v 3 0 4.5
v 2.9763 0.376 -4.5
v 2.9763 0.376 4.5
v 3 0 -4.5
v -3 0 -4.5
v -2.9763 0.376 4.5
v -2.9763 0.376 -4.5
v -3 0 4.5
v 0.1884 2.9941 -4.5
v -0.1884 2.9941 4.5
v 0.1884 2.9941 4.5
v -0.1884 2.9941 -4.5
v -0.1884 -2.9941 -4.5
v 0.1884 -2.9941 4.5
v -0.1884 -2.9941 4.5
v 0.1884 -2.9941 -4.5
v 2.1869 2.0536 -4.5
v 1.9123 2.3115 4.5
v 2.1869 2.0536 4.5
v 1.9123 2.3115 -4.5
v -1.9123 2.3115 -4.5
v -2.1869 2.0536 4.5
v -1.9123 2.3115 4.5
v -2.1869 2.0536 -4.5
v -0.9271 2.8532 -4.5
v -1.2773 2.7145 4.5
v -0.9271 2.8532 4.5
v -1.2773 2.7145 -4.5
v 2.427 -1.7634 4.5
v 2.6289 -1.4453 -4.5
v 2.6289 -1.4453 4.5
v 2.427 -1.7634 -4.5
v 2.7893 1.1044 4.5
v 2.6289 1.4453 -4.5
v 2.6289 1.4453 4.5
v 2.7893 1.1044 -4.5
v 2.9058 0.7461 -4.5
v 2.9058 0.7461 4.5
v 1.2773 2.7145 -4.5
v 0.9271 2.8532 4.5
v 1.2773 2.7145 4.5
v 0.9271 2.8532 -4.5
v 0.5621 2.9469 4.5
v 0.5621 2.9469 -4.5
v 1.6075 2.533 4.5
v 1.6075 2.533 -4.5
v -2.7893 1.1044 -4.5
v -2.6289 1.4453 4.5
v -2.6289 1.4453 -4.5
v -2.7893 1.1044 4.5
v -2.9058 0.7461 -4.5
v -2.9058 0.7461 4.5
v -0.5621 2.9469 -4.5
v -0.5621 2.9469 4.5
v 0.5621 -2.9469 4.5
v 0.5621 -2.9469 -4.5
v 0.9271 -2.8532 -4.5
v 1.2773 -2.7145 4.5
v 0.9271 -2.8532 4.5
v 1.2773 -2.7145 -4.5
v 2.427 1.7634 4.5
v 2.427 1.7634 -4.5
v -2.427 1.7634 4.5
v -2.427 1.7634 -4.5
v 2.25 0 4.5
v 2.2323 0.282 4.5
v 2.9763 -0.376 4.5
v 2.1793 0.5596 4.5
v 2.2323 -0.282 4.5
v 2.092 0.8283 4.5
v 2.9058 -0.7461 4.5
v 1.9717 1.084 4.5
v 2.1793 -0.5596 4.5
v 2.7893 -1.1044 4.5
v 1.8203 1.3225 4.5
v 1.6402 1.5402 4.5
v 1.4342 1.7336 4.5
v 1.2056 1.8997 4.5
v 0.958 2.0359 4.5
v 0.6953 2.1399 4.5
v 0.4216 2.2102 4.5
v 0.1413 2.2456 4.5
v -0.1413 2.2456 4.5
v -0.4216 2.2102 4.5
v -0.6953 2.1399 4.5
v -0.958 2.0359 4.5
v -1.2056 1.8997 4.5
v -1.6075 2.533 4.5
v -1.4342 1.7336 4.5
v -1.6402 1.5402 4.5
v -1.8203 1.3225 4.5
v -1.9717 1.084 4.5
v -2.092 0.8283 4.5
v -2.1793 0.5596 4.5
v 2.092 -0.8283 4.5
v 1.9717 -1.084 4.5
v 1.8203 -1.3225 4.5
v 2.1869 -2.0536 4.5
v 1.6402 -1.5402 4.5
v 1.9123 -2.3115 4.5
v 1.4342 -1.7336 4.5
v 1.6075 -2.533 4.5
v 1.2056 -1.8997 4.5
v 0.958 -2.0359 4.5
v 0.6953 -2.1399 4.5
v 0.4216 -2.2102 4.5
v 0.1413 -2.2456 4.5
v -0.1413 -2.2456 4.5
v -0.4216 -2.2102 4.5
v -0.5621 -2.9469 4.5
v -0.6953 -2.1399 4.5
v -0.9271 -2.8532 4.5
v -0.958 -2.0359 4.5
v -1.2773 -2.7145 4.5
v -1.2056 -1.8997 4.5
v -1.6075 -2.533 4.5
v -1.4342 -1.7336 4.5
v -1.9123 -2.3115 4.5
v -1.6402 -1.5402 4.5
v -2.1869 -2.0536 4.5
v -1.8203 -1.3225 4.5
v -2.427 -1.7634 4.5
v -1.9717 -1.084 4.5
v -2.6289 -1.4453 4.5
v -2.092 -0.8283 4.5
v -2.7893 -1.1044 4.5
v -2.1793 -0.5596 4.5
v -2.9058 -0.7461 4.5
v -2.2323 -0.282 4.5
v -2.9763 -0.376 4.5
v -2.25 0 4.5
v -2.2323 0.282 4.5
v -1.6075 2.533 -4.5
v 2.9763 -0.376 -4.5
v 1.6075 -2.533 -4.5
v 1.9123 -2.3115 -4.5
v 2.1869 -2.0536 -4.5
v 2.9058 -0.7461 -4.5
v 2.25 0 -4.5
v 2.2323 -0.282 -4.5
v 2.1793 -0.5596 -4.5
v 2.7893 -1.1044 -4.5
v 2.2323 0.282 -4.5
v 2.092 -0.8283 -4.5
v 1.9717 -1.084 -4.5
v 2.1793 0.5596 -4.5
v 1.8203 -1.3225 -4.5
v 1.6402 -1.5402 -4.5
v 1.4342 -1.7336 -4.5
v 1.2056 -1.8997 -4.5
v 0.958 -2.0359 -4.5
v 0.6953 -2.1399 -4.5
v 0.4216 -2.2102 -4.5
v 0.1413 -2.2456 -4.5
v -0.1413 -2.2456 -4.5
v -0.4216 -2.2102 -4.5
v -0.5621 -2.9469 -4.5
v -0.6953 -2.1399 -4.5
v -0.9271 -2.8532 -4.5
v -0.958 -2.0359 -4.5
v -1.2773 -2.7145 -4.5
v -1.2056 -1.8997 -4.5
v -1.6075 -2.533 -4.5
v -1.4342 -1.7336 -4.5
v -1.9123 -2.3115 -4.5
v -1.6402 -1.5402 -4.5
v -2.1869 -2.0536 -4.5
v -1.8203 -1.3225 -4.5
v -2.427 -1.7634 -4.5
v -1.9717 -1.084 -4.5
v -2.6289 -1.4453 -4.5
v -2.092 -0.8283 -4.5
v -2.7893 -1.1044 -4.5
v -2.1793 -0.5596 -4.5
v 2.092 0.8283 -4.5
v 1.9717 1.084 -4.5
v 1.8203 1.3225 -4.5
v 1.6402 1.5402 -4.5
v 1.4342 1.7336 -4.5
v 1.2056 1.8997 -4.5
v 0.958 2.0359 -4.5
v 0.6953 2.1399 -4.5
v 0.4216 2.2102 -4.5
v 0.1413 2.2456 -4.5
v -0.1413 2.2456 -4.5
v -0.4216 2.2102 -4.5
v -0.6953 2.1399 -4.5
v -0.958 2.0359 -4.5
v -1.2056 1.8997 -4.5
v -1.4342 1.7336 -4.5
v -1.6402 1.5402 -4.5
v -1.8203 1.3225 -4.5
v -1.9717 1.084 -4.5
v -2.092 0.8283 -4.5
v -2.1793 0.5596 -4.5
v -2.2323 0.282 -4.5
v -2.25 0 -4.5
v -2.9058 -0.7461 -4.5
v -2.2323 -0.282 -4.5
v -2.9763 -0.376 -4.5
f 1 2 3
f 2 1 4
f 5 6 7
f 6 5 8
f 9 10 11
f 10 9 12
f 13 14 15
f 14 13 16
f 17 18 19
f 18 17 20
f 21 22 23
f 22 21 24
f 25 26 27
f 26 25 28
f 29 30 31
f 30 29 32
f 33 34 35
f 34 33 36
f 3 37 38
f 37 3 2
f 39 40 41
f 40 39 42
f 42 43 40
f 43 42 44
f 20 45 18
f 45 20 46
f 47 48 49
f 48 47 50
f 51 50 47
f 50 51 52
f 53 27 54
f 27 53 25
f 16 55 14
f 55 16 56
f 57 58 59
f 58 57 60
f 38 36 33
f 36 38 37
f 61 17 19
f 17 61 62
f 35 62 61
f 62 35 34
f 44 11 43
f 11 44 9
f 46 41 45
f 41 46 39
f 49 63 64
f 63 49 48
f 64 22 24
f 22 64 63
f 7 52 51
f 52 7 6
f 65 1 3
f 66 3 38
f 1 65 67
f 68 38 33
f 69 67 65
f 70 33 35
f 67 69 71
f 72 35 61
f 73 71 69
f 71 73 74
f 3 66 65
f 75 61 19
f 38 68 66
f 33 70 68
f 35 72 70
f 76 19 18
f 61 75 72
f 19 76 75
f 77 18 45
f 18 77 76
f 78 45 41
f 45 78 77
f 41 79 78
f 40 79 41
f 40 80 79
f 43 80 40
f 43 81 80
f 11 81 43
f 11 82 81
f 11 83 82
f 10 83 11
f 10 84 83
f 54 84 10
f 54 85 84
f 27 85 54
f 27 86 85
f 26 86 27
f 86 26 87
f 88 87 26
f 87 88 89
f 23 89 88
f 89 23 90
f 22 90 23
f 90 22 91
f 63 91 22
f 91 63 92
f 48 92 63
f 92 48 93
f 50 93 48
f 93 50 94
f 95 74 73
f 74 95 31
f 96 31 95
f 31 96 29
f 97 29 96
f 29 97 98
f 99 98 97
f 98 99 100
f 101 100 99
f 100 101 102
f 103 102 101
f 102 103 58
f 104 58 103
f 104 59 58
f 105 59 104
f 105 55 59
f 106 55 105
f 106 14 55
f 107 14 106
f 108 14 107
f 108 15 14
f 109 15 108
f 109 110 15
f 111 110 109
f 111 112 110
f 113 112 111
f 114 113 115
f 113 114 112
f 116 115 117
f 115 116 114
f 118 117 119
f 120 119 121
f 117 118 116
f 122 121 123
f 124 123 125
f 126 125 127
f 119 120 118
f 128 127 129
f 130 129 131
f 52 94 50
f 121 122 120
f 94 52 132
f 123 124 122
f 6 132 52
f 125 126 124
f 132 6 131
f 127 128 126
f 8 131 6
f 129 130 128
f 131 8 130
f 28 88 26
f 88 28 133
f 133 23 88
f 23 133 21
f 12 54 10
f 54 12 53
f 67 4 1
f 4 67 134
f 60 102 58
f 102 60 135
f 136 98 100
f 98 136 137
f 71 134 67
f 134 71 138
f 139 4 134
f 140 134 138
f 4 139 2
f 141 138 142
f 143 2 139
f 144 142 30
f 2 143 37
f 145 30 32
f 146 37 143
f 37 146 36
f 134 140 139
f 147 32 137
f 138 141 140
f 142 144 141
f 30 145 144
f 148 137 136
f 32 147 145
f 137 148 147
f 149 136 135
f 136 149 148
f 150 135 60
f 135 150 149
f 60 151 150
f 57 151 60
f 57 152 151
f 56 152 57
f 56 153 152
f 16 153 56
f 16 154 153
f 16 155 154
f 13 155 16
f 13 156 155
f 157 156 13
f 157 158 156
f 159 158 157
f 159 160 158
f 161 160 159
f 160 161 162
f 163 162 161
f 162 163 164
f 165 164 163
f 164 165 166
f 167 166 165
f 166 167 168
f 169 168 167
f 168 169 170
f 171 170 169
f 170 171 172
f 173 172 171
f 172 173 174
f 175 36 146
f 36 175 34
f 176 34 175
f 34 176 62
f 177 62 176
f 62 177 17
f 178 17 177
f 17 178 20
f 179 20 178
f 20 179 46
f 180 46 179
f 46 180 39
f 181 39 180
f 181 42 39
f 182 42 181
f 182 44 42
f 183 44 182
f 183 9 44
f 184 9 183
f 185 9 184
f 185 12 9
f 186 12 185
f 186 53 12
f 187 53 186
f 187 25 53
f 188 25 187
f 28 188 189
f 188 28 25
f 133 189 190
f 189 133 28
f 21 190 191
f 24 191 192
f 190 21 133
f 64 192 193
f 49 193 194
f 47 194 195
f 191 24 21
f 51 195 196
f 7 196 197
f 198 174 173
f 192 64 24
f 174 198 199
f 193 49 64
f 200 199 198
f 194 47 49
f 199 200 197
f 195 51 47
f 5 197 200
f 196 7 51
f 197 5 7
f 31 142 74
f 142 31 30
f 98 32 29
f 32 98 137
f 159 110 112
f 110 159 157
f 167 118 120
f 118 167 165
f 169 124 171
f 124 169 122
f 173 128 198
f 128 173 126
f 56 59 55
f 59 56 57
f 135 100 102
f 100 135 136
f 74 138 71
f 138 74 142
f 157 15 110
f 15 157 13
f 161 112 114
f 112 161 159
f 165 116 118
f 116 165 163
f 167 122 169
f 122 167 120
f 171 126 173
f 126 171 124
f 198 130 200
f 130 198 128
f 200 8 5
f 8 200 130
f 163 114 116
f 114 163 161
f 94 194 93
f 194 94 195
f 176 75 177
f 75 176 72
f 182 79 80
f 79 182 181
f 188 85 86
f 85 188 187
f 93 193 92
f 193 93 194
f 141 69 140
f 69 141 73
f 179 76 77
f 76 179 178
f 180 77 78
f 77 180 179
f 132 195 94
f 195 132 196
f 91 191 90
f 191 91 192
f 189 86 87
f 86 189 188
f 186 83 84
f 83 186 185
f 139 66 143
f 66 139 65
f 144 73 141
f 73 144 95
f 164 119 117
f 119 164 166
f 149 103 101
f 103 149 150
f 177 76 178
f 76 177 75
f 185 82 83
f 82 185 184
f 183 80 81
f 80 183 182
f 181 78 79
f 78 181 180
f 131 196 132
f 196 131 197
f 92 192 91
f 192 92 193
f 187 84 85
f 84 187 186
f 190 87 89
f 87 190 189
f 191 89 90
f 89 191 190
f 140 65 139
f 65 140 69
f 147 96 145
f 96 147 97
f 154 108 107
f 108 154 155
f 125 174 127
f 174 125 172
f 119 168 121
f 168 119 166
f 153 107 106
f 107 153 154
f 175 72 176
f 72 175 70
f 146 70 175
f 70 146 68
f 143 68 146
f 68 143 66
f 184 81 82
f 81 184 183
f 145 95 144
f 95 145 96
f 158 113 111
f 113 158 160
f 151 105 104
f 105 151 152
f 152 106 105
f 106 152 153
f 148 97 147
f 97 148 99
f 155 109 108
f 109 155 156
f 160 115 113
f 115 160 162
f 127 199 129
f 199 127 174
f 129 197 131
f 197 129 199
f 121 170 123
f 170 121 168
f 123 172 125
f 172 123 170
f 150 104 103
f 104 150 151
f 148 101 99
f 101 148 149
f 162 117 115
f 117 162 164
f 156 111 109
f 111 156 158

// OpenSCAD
$fn = 50;


difference() {
	union() {
		translate(v = [0, 0, -4.5000000000]) {
			cylinder(h = 9, r = 3.0000000000);
		}
	}
	union() {
		translate(v = [0, 0, -100.0000000000]) {
			cylinder(h = 200, r = 2.2500000000);
		}
	}
}
